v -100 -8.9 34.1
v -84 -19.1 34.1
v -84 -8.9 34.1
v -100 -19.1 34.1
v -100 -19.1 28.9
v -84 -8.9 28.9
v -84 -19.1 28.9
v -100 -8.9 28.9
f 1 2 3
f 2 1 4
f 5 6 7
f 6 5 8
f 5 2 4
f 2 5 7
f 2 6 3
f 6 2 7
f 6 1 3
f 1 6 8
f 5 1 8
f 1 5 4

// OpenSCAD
// file: ../md_vitamins.scad
// Envelopes of the bought electronics, placed where the parts expect them (for fit checks and renders)
SG90_STL = "/Users/hemangvora/OpenDuck/upstream/Open_Duck_Mini/mini_bdx/robots/open_duck_mini_v2/sg90.stl";
module v_sg90_jaw() multmatrix([[1,0,0,JAW_P[0]-5.7],[0,0,-1,-SG_BASE],[0,1,0,JAW_P[1]],[0,0,0,1]]) import(SG90_STL);
module v_radxa() {                         // Radxa Zero 3W 65 x 30 board on 6 mm standoffs + 16 mm component/wire budget
    translate([RADXA_X0, RADXA_Y0, CH_Z1 + 6]) { cube([65, 30, 1.6]); translate([2, 2, 1.6]) cube([61, 26, 16]); translate([0, 0, -2]) cube([65, 30, 2]); }
}
module v_buck() translate([-30, -13.5, CH_Z1 + 1]) cube([46, 27, 12]);            // XY-3606 (HW-688), generous envelope
module v_camera() translate([103.8, -12.5, EYE_C[1] - 14.5]) { cube([1.0, 25, 24]); translate([1.0, 12.5 - 4.25, 14.5 - 4.25]) cube([5.2, 8.5, 8.5]); }  // Pi cam v2 / IMX219 board + lens module
module v_tof() translate([103.8, TOF_C[0] - 6.5, TOF_C[1] - 6.5]) { cube([1.0, 13, 13]); translate([1.0, 6.5 - 3.2, 6.5 - 1.5]) cube([1.75, 6.4, 3.0]); }
module head_vitamins() { v_sg90_jaw(); v_radxa(); v_buck(); v_camera(); v_tof(); }

// ---------------- body electronics ----------------
module v_pack()    translate([DK_X0, -PACK[1] / 2, DK_Z1]) cube(PACK);                       // 3S1P Samsung 30Q pack
module v_bms()     translate([DK_X0 + 5, -31, DK_Z1 + PACK[2] + 0.5]) cube([48, 62, 7]);      // 3S 40 A BMS, 5-FET board
module v_adapter() translate([-44, -21, SHELF[4] + 4]) { cube([33, 42, 1.6]); translate([1, 1, 1.6]) cube([31, 40, 10]); }   // Bus Servo Adapter (A)
module v_switch()  {   // AUTO MT 12 V 20 A toggle, 12 mm hole; body 28 x 16 behind the panel, cover outside
    translate([DK_X0, SWITCH_C[0] - 14, SWITCH_C[1] - 8]) cube([45, 28, 16]);
    translate([BX_R - 25, SWITCH_C[0] - 14, SWITCH_C[1] - 8]) cube([25, 28, 16]);
}
module v_xt30()    translate([DK_X0, XT30_C[0] - 5.1, XT30_C[1] - 2.6]) cube([16, 10.2, 5.2]);
module v_balance() translate([DK_X0, BAL_C[0] - 6.2, BAL_C[1] - 2.9]) cube([8, 12.4, 5.8]);
module v_caps()    for (y = [26, 33]) translate([-40, y, SHELF[4] + 5.3]) rotate([0, 90, 0]) cylinder(d = 10.2, h = 21);  // 2 x 1000 uF 25 V lying on the shelf
module body_vitamins() { v_pack(); v_bms(); v_adapter(); v_switch(); v_xt30(); v_balance(); v_caps(); }
// file: ../md_params.scad
// =====================================================================
//  Microduck-look skin for the Open Duck Mini v2 skeleton
//  Shared parameters and helpers.
//  Frame: Open Duck print/robot frame, mm. +x forward, +y left, +z up.
//  Every part is modelled where it sits on the robot (zero pose).
// =====================================================================

$fn = 72;
EPS = 0.01;

// ---------- fasteners ----------
INSERT_D   = 4.0;   // hole for M3 x 5 brass heat-set insert (Amazon B0DZ8B7FW1)
INSERT_L   = 6.0;   // hole depth for that insert
M3_CLR     = 3.4;   // M3 clearance
M3_HEAD    = 6.5;   // M3 socket-head counterbore
M3_NUT     = 6.4;   // M3 nut across corners (+clearance)
M2_TAP     = 1.8;   // M2 self-tapping pilot (SG90 tab screws, servo adapter)
M25_TAP    = 2.2;   // M2.5 self-tapping pilot (Radxa)
M2_CLR     = 2.4;

// ---------- colours (for previews only) ----------
C_WHITE = [0.95, 0.94, 0.90];
C_BLACK = [0.13, 0.13, 0.14];

// ---------- helpers ----------
function lerp(a, b, t) = a + (b - a) * t;

// Section with vertical sides from zb to zc and a superellipse cap from zc to zt.
// Points are (y, z). n = 2 gives an ellipse, larger n gives a squarer top.
function se_pts(w, zb, zc, zt, n, N = 56) =
    concat(
        [[ w, zb]],
        [for (i = [0:N]) let(t = i * 180 / N, c = cos(t), s = sin(t))
            [w * sign(c) * pow(abs(c), 2 / n), zc + (zt - zc) * pow(abs(s), 2 / n)]],
        [[-w, zb]]
    );

// st = [x, half_width, z_bottom, z_curve_start, z_top, exponent]
module station(st, inset = 0, ext = 0) {
    translate([st[0], 0, 0]) rotate([90, 0, 90])
        linear_extrude(height = EPS, center = true)
            offset(delta = -inset)
                polygon(se_pts(st[1], st[2] - ext, st[3], st[4], st[5]));
}

// piecewise loft through convex stations (hull of neighbours)
module loft(sts, inset = 0, ext = 0) {
    for (i = [0:len(sts) - 2])
        hull() { station(sts[i], inset, ext); station(sts[i + 1], inset, ext); }
}

// station parameters interpolated at any x inside the list
function st_at(sts, x) =
    let(i = max([for (k = [0:len(sts) - 2]) if (sts[k][0] <= x) k]),
        a = sts[i], b = sts[i + 1], t = (x - a[0]) / (b[0] - a[0]))
    [x, lerp(a[1], b[1], t), lerp(a[2], b[2], t), lerp(a[3], b[3], t),
        lerp(a[4], b[4], t), lerp(a[5], b[5], t)];

// heat-set insert pocket: opening at origin, going along -z by default
module insert_hole(depth = INSERT_L, d = INSERT_D) {
    translate([0, 0, -depth]) cylinder(d = d, h = depth + EPS);
    translate([0, 0, -0.6]) cylinder(d1 = d, d2 = d + 0.8, h = 0.6 + EPS);   // lead-in chamfer
}

// M3 clearance with counterbore, axis +z, counterbore at the top
module m3_cb(len_total, cb_depth) {
    translate([0, 0, -EPS]) cylinder(d = M3_CLR, h = len_total + 2 * EPS);
    translate([0, 0, len_total - cb_depth]) cylinder(d = M3_HEAD, h = cb_depth + 1);
}

module rrect(x0, x1, y0, y1, r) {
    translate([x0 + r, y0 + r]) offset(r = r) square([x1 - x0 - 2 * r, y1 - y0 - 2 * r]);
}
// main file
include <../md_params.scad>
include <../md_head.scad>
include <../md_body.scad>
include <../md_vitamins.scad>
v_xt30();
